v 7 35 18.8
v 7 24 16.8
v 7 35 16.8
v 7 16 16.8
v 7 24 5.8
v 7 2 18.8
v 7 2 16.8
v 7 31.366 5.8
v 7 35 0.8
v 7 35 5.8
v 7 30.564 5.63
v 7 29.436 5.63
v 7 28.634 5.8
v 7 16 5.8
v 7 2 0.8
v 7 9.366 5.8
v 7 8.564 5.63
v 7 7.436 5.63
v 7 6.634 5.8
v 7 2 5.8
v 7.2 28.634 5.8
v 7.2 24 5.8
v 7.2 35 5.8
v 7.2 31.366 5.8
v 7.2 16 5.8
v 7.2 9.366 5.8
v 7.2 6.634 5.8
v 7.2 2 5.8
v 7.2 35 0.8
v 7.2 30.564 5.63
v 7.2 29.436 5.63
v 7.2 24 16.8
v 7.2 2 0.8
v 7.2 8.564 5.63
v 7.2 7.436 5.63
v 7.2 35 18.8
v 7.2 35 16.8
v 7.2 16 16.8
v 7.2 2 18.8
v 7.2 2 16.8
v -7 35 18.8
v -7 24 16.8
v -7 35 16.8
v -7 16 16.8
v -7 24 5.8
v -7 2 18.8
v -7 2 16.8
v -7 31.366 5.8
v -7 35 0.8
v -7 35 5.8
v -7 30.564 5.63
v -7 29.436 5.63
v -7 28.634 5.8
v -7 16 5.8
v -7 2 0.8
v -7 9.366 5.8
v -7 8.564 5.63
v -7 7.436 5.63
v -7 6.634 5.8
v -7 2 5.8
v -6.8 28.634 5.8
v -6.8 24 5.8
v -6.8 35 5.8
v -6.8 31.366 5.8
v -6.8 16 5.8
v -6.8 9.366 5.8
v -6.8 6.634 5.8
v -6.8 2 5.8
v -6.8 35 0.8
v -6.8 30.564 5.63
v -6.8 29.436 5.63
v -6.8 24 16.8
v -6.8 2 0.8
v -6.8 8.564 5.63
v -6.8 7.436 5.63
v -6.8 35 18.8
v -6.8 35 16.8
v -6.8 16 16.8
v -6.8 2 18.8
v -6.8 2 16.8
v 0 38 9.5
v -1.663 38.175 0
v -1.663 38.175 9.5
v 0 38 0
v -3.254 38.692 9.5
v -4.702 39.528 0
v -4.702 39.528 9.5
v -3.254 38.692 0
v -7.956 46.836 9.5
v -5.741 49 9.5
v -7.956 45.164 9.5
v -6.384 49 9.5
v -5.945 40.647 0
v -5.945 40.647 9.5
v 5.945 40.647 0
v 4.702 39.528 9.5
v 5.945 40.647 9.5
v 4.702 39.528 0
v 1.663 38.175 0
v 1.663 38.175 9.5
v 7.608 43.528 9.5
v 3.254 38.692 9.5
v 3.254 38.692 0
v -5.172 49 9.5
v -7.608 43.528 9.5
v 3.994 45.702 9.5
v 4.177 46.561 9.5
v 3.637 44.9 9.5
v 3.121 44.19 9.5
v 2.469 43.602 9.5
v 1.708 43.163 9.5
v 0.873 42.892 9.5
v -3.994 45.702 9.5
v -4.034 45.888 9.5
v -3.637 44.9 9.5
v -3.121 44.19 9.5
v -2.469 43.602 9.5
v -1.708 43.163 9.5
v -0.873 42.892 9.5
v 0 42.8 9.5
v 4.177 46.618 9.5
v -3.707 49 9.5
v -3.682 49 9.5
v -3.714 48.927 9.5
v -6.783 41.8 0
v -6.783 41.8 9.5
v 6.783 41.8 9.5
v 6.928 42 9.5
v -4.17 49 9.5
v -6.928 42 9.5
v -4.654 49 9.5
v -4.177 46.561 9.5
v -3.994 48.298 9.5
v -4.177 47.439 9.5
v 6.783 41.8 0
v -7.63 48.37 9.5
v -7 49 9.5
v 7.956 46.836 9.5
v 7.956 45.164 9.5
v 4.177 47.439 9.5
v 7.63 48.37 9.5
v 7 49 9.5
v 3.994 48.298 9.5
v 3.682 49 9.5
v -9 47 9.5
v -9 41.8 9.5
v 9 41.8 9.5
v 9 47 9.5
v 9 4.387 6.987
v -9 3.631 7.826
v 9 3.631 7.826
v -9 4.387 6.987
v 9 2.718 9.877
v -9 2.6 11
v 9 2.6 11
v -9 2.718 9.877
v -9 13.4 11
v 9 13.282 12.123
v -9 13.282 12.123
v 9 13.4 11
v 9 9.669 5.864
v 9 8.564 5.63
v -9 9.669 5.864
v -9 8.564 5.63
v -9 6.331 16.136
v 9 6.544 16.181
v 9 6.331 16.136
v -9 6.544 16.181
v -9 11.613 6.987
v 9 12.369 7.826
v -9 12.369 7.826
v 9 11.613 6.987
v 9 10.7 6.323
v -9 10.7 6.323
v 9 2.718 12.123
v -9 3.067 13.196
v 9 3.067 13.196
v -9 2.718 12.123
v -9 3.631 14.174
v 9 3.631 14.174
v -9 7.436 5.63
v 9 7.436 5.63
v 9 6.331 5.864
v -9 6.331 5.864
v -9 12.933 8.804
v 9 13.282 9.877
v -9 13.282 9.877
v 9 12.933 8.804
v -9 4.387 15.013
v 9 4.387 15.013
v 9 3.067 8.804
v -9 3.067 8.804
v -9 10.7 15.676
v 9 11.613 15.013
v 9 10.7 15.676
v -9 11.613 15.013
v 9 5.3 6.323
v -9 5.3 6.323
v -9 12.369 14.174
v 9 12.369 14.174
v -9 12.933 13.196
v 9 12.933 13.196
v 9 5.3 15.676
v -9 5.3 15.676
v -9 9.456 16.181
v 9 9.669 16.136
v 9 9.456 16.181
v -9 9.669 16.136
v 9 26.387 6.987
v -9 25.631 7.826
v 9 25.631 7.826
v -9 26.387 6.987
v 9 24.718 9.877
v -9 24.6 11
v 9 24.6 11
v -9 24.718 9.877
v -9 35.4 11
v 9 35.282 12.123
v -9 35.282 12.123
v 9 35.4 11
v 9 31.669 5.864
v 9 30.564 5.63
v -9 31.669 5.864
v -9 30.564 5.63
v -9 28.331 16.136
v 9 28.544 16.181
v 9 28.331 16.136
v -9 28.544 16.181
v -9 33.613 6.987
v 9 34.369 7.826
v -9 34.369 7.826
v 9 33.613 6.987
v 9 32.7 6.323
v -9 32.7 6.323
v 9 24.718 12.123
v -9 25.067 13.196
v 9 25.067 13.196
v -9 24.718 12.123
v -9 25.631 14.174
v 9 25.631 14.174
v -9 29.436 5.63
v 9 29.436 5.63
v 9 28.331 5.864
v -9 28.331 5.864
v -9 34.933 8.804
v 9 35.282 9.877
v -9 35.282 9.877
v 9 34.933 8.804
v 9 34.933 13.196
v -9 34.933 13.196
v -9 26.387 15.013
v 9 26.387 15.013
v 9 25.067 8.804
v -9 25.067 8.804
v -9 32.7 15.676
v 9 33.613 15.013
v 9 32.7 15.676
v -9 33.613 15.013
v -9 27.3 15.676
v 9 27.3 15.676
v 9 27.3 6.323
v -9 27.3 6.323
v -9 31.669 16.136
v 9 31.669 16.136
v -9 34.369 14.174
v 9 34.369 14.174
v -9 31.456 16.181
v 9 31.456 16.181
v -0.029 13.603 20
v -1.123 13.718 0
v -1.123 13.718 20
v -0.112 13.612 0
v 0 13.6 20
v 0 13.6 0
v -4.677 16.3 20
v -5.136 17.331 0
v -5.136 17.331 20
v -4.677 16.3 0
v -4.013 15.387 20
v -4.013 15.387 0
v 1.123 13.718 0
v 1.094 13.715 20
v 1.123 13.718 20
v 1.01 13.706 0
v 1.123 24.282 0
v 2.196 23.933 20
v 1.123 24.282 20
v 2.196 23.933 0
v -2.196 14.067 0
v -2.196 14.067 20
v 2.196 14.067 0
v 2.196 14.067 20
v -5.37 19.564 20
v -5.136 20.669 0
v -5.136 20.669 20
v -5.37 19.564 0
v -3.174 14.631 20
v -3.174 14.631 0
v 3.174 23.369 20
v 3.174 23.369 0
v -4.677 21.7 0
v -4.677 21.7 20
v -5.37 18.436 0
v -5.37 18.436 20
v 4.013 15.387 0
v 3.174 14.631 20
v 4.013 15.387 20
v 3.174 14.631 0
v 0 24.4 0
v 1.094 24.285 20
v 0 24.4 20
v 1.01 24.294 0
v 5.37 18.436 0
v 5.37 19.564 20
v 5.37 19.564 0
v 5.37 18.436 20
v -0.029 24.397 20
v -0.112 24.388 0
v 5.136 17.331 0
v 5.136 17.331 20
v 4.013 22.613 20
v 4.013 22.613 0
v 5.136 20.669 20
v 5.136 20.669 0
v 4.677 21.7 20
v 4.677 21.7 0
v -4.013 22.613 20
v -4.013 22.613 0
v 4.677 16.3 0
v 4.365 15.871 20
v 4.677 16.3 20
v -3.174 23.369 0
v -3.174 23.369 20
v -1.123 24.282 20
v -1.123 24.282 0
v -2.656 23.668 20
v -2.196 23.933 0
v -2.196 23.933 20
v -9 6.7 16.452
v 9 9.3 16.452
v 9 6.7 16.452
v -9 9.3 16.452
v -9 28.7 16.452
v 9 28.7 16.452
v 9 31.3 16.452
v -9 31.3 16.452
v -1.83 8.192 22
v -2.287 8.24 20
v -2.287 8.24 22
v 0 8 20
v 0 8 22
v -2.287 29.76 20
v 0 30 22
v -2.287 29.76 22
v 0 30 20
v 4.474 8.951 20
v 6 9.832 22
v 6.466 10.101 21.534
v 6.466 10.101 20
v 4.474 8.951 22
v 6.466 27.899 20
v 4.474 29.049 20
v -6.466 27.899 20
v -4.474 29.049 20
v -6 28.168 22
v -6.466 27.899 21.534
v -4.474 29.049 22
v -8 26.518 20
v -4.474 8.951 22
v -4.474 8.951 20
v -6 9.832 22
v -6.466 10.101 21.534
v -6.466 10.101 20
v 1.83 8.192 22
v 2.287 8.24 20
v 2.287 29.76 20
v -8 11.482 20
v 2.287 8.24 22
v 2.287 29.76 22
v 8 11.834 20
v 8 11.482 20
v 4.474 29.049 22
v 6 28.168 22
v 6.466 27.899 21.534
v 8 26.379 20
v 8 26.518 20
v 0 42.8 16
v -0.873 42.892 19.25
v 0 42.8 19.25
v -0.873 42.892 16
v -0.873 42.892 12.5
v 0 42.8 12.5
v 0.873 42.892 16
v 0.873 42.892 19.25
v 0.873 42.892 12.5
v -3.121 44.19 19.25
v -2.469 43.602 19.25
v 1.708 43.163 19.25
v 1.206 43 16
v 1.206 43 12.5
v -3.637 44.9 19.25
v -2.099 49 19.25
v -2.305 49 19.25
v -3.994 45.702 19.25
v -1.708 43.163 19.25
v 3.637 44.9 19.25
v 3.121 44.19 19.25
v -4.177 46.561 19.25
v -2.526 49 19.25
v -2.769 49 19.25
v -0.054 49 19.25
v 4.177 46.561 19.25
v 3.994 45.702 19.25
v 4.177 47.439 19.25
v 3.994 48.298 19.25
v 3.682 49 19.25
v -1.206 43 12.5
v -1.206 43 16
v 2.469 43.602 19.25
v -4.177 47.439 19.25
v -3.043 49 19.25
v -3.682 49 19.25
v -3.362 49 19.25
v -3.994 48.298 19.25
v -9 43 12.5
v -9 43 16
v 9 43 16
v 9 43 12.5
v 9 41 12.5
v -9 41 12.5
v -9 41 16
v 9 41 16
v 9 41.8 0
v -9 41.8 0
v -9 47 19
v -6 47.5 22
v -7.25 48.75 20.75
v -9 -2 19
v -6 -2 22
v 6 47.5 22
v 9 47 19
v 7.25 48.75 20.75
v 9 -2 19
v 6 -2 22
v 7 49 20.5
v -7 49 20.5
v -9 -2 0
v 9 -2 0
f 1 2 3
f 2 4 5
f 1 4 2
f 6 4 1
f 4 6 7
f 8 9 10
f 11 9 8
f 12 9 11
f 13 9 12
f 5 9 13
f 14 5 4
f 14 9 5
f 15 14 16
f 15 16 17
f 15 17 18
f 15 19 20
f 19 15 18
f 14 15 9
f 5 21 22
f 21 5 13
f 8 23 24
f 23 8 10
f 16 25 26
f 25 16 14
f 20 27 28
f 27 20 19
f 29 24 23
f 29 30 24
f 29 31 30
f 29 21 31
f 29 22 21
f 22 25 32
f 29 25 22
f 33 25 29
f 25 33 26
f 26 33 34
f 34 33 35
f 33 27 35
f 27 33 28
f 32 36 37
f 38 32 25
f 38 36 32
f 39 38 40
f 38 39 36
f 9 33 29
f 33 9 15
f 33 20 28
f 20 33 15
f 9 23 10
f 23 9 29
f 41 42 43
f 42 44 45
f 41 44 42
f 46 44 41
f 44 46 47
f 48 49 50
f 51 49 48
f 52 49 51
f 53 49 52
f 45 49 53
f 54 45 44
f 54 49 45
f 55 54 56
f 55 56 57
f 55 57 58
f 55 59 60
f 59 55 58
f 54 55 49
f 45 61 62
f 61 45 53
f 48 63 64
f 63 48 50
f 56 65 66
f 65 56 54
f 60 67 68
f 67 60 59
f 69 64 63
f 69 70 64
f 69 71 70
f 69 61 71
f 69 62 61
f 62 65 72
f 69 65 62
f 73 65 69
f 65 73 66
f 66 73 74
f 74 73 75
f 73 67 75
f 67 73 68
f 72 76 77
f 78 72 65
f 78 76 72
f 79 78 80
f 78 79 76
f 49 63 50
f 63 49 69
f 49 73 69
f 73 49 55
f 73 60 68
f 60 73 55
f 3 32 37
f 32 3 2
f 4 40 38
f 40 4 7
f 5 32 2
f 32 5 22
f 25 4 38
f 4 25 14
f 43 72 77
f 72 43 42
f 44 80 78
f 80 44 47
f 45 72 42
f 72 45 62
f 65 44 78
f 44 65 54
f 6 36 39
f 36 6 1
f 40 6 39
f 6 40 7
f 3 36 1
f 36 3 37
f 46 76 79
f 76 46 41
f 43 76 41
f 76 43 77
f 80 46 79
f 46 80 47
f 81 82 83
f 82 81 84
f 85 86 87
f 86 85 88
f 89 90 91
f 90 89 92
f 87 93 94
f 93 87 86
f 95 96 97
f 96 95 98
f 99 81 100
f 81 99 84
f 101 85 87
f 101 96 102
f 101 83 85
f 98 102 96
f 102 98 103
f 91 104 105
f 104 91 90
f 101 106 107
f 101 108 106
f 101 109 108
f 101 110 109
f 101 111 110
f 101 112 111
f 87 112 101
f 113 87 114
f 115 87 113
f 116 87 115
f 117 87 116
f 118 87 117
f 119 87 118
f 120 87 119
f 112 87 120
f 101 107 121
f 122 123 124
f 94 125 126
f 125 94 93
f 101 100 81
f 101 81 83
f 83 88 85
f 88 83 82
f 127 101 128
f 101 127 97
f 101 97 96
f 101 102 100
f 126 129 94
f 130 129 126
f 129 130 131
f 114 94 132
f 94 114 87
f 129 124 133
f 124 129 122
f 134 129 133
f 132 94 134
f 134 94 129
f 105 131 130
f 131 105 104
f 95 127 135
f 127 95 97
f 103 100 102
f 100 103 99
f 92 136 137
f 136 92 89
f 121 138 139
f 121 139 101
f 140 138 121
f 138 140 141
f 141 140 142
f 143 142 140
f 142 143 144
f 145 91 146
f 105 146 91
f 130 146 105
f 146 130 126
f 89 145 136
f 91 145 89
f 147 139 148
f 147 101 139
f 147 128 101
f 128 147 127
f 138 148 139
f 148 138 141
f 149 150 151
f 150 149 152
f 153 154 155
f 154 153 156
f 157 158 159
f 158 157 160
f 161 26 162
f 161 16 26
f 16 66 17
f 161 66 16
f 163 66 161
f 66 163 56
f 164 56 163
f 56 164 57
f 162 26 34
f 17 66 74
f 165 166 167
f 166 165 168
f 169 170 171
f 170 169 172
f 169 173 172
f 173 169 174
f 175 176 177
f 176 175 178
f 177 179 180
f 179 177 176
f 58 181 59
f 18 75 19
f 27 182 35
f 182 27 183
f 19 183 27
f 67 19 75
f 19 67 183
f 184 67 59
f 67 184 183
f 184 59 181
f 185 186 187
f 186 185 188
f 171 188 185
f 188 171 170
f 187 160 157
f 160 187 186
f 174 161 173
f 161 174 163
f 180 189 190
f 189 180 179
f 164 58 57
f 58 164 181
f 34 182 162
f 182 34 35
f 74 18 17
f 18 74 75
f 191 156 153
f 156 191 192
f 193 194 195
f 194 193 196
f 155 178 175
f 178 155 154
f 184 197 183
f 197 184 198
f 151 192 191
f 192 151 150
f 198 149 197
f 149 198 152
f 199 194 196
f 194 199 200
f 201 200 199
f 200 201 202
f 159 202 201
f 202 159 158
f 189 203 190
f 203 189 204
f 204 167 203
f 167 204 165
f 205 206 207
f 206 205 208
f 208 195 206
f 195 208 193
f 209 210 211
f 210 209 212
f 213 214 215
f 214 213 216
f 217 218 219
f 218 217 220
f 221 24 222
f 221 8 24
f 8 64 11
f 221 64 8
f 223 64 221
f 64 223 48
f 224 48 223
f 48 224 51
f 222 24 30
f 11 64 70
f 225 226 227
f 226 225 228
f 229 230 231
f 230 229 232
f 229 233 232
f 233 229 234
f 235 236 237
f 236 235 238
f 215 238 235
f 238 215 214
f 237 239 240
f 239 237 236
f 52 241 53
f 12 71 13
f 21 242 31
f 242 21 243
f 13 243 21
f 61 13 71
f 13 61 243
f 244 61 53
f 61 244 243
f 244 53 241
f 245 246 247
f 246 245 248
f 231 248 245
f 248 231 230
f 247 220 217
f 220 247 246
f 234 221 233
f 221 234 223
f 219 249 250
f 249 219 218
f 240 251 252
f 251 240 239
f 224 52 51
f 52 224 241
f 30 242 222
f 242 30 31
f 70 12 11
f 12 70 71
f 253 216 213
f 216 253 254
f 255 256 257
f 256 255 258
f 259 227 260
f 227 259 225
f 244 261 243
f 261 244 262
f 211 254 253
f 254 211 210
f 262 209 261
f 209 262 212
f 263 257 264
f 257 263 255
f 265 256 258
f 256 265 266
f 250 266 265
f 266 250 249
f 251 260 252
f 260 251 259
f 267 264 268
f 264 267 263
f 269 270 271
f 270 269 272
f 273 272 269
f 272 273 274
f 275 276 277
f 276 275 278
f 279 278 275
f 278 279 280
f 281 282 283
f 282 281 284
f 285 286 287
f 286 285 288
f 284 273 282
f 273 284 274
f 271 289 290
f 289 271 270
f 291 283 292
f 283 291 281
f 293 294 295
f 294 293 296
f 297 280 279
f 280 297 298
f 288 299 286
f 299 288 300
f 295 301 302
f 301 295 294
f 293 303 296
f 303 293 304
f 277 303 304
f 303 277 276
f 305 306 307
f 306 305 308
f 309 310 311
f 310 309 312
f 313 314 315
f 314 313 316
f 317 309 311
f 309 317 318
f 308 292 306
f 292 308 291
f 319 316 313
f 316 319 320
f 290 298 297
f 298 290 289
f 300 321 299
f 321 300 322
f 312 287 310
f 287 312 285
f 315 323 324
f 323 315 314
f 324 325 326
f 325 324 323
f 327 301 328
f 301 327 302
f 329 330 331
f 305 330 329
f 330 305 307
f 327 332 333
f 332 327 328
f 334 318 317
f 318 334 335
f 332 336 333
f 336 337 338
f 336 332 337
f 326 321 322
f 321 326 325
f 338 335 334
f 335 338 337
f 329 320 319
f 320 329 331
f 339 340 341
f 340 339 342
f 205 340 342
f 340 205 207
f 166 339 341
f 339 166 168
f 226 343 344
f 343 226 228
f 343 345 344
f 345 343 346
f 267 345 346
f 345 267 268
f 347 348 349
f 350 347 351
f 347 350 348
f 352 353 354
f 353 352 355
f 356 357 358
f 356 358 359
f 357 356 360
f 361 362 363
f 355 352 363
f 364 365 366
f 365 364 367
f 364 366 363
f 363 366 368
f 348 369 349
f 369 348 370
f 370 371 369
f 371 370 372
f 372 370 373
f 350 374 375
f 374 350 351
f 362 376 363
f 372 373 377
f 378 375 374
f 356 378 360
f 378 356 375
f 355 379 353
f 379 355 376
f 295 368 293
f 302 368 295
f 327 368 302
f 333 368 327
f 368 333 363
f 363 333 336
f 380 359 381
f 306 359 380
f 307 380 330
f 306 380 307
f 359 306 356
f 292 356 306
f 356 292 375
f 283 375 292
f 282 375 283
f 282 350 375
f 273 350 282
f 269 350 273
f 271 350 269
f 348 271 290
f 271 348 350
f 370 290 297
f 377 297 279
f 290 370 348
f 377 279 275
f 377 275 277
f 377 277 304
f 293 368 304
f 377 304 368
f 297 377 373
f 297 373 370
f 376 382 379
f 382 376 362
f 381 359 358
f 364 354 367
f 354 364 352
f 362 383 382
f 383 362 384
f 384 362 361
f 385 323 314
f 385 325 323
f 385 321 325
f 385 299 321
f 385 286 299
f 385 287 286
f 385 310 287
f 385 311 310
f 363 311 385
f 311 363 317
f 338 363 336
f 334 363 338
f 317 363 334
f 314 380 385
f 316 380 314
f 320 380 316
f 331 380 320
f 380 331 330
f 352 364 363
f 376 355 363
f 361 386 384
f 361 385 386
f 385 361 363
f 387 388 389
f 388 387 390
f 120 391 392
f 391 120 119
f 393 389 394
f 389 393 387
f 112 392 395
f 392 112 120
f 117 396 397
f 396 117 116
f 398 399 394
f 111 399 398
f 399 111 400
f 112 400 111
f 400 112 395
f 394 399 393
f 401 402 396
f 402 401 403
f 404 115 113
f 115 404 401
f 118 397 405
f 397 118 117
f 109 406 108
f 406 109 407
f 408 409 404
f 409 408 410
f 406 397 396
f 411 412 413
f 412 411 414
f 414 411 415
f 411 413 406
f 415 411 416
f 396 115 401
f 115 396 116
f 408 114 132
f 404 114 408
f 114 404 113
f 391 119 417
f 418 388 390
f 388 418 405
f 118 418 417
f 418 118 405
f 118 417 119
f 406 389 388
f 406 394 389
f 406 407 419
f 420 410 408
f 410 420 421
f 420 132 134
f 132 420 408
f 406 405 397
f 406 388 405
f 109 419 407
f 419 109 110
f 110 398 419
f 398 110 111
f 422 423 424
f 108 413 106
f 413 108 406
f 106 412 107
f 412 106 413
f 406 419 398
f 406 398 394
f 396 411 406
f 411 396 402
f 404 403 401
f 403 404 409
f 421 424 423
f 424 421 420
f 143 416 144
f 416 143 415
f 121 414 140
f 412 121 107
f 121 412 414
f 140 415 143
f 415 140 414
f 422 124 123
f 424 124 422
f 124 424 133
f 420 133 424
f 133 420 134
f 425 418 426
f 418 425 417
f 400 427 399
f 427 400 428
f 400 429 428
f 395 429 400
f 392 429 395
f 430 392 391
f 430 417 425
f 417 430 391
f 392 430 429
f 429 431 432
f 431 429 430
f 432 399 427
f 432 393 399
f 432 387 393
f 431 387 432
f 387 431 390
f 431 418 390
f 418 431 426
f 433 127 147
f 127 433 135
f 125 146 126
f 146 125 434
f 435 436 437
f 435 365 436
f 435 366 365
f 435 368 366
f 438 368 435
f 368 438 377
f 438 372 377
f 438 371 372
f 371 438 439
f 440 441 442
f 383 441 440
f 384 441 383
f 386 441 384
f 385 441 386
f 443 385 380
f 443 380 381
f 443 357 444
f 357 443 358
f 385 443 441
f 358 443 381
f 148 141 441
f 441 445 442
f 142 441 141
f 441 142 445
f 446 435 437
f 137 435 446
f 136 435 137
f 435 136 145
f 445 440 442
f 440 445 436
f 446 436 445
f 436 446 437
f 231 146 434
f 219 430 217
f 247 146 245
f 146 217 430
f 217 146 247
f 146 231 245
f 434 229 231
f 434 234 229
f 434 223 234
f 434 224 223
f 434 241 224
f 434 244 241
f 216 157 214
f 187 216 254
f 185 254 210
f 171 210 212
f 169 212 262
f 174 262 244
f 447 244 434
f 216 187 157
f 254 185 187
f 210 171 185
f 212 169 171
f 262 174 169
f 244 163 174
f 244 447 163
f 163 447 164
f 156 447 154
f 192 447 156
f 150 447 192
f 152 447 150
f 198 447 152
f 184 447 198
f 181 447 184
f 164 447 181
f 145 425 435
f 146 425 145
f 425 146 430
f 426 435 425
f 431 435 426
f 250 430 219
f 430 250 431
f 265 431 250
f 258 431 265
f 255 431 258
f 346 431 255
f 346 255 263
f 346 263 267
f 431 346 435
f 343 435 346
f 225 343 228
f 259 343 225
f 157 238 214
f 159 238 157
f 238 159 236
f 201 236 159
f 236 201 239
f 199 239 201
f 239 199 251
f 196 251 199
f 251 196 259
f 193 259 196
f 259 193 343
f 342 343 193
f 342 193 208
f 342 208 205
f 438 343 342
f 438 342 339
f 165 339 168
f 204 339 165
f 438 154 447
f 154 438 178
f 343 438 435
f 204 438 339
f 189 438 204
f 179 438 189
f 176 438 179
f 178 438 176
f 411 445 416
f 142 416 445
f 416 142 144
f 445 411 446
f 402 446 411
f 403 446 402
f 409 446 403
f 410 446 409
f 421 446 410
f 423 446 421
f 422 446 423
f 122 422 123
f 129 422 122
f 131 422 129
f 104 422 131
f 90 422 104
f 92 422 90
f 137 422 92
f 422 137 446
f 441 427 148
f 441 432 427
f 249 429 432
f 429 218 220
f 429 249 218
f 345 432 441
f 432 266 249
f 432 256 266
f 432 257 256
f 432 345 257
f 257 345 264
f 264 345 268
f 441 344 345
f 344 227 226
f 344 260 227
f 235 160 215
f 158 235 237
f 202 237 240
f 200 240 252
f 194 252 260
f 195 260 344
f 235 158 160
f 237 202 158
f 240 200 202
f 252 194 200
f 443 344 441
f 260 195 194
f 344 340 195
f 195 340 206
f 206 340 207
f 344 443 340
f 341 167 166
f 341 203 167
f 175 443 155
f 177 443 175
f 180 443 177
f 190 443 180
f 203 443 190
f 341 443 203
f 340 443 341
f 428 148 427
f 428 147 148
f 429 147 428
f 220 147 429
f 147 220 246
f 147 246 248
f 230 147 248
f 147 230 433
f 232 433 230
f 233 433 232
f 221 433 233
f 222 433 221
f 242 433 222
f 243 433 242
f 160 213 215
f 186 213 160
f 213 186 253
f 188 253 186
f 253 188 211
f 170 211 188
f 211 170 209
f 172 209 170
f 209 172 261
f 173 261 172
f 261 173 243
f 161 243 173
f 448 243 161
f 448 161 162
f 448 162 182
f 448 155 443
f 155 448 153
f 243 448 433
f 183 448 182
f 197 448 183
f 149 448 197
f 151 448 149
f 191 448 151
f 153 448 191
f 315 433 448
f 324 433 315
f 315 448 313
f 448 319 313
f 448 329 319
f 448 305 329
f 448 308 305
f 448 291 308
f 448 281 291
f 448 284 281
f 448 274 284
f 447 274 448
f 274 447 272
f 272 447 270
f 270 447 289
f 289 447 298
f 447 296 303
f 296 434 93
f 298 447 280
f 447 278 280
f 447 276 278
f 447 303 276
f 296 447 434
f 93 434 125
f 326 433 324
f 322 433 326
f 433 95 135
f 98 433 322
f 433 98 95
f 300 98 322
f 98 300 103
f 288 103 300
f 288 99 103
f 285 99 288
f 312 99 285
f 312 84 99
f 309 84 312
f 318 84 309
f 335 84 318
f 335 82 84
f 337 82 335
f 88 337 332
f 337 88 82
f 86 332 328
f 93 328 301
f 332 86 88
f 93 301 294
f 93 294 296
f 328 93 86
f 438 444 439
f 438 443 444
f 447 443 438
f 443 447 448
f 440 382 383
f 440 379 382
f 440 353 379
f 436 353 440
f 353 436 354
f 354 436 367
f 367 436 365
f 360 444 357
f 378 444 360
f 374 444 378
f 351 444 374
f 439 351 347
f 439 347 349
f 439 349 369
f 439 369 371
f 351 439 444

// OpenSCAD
// PRUSA iteration3
// Y frame corners
// GNU GPL v3
// Josef Průša <iam@josefprusa.cz> and contributors
// http://www.reprap.org/wiki/Prusa_Mendel
// http://prusamendel.org


module corner_base(){	
 translate([-9,-11,-2]) cube([18,22,51]);
 
}

module corner_holes(){
 translate([-11,-11,0]){
  // Bottom hole
  translate([0,11,8]) rotate([0,90,0]) translate([0,0,-5]) cylinder(h = 270, r=5.4, $fn=30);
  // Top hole
  translate([0,11,30]) rotate([0,90,0]) translate([0,0,-5]) cylinder(h = 270, r=5.4, $fn=30);
  // Middle hole
  translate([11,0,19]) rotate([0,0,90]) rotate([0,90,0]) translate([0,0,-5]) cylinder(h = 270, r=5.4, $fn=30);
  // Bottom hole bridge
  translate([0,7.8,8]) rotate([0,90,0]) translate([0,0,-5]) cylinder(h = 270, r=2.6, $fn=6);
  // Top hole bridge
  translate([0,7.8,30]) rotate([0,90,0]) translate([0,0,-5]) cylinder(h = 270, r=2.6, $fn=6);

  // Washer hole
  translate([11,-3,19]) rotate([0,0,90]) rotate([0,90,0]) translate([0,0,-5]) cylinder(h = 10, r=11, $fn=30);

  // Top smooth rod insert
  // Smooth rod place
  translate([11,2.75,47]) rotate([0,90,90]) cylinder(h = 10, r=4.2, $fn=30); 
  // Ziptie
  translate([-5,6,41])  cube([30,3.5,2]);
  
  // LM8UU keepout
  difference(){
    translate([11,12.5,46]) rotate([0,90,90]) cylinder(h = 270, r=8, $fn=30);
    translate([21,12.5,62]) rotate([0,90,90]) cube([20,20,30]);
  } 
  
  translate([21,12.5,57]) rotate([0,90,90]) cube([15.2,20,20]);
 
 }
 
}

module corner_fancy(){
 // Side corner cutouts
  translate([-8,-9,0]) rotate([0,0,-45-180]) translate([-15,0,-3]) cube([30,30,53]);
  translate([8,-9,0]) rotate([0,0,45-180]) translate([-15,0,-3]) cube([30,30,53]);
 // Top corner cutouts
    translate([7,0,49]) rotate([0,45,0]) translate([-15,-15,0]) cube([30,30,30]);
    translate([-7,0,49]) rotate([0,-45,0]) translate([-15,-15,0]) cube([30,30,30]);
    rotate([0,0,90]){
    translate([-9.5,0,49]) rotate([0,-45,0]) translate([-15,-15,0]) cube([30,30,30]);
    }
}

module selective_infill(){
    
    translate([7,2,0.8])cube([0.2,33,5]); 
    translate([-7,2,0.8])cube([0.2,33,5]);
    
    translate([ 7,16,5.8])cube([0.2,8,11]);
    translate([-7,16,5.8])cube([0.2,8,11]);
    
    translate([7,2,16.8])cube([0.2,33,2]); 
    translate([-7,2,16.8])cube([0.2,33,2]);
}
    
    
// Final part
module corner(){
 // Rotate the part for better printing
    translate([0,0,11]) rotate([-90,0,0]) 
    {
    difference(){
        corner_base();
        corner_holes();
        corner_fancy();
        translate([0,11,0]) rotate([90,0,0])selective_infill();
        
    }
    }

}

corner();
